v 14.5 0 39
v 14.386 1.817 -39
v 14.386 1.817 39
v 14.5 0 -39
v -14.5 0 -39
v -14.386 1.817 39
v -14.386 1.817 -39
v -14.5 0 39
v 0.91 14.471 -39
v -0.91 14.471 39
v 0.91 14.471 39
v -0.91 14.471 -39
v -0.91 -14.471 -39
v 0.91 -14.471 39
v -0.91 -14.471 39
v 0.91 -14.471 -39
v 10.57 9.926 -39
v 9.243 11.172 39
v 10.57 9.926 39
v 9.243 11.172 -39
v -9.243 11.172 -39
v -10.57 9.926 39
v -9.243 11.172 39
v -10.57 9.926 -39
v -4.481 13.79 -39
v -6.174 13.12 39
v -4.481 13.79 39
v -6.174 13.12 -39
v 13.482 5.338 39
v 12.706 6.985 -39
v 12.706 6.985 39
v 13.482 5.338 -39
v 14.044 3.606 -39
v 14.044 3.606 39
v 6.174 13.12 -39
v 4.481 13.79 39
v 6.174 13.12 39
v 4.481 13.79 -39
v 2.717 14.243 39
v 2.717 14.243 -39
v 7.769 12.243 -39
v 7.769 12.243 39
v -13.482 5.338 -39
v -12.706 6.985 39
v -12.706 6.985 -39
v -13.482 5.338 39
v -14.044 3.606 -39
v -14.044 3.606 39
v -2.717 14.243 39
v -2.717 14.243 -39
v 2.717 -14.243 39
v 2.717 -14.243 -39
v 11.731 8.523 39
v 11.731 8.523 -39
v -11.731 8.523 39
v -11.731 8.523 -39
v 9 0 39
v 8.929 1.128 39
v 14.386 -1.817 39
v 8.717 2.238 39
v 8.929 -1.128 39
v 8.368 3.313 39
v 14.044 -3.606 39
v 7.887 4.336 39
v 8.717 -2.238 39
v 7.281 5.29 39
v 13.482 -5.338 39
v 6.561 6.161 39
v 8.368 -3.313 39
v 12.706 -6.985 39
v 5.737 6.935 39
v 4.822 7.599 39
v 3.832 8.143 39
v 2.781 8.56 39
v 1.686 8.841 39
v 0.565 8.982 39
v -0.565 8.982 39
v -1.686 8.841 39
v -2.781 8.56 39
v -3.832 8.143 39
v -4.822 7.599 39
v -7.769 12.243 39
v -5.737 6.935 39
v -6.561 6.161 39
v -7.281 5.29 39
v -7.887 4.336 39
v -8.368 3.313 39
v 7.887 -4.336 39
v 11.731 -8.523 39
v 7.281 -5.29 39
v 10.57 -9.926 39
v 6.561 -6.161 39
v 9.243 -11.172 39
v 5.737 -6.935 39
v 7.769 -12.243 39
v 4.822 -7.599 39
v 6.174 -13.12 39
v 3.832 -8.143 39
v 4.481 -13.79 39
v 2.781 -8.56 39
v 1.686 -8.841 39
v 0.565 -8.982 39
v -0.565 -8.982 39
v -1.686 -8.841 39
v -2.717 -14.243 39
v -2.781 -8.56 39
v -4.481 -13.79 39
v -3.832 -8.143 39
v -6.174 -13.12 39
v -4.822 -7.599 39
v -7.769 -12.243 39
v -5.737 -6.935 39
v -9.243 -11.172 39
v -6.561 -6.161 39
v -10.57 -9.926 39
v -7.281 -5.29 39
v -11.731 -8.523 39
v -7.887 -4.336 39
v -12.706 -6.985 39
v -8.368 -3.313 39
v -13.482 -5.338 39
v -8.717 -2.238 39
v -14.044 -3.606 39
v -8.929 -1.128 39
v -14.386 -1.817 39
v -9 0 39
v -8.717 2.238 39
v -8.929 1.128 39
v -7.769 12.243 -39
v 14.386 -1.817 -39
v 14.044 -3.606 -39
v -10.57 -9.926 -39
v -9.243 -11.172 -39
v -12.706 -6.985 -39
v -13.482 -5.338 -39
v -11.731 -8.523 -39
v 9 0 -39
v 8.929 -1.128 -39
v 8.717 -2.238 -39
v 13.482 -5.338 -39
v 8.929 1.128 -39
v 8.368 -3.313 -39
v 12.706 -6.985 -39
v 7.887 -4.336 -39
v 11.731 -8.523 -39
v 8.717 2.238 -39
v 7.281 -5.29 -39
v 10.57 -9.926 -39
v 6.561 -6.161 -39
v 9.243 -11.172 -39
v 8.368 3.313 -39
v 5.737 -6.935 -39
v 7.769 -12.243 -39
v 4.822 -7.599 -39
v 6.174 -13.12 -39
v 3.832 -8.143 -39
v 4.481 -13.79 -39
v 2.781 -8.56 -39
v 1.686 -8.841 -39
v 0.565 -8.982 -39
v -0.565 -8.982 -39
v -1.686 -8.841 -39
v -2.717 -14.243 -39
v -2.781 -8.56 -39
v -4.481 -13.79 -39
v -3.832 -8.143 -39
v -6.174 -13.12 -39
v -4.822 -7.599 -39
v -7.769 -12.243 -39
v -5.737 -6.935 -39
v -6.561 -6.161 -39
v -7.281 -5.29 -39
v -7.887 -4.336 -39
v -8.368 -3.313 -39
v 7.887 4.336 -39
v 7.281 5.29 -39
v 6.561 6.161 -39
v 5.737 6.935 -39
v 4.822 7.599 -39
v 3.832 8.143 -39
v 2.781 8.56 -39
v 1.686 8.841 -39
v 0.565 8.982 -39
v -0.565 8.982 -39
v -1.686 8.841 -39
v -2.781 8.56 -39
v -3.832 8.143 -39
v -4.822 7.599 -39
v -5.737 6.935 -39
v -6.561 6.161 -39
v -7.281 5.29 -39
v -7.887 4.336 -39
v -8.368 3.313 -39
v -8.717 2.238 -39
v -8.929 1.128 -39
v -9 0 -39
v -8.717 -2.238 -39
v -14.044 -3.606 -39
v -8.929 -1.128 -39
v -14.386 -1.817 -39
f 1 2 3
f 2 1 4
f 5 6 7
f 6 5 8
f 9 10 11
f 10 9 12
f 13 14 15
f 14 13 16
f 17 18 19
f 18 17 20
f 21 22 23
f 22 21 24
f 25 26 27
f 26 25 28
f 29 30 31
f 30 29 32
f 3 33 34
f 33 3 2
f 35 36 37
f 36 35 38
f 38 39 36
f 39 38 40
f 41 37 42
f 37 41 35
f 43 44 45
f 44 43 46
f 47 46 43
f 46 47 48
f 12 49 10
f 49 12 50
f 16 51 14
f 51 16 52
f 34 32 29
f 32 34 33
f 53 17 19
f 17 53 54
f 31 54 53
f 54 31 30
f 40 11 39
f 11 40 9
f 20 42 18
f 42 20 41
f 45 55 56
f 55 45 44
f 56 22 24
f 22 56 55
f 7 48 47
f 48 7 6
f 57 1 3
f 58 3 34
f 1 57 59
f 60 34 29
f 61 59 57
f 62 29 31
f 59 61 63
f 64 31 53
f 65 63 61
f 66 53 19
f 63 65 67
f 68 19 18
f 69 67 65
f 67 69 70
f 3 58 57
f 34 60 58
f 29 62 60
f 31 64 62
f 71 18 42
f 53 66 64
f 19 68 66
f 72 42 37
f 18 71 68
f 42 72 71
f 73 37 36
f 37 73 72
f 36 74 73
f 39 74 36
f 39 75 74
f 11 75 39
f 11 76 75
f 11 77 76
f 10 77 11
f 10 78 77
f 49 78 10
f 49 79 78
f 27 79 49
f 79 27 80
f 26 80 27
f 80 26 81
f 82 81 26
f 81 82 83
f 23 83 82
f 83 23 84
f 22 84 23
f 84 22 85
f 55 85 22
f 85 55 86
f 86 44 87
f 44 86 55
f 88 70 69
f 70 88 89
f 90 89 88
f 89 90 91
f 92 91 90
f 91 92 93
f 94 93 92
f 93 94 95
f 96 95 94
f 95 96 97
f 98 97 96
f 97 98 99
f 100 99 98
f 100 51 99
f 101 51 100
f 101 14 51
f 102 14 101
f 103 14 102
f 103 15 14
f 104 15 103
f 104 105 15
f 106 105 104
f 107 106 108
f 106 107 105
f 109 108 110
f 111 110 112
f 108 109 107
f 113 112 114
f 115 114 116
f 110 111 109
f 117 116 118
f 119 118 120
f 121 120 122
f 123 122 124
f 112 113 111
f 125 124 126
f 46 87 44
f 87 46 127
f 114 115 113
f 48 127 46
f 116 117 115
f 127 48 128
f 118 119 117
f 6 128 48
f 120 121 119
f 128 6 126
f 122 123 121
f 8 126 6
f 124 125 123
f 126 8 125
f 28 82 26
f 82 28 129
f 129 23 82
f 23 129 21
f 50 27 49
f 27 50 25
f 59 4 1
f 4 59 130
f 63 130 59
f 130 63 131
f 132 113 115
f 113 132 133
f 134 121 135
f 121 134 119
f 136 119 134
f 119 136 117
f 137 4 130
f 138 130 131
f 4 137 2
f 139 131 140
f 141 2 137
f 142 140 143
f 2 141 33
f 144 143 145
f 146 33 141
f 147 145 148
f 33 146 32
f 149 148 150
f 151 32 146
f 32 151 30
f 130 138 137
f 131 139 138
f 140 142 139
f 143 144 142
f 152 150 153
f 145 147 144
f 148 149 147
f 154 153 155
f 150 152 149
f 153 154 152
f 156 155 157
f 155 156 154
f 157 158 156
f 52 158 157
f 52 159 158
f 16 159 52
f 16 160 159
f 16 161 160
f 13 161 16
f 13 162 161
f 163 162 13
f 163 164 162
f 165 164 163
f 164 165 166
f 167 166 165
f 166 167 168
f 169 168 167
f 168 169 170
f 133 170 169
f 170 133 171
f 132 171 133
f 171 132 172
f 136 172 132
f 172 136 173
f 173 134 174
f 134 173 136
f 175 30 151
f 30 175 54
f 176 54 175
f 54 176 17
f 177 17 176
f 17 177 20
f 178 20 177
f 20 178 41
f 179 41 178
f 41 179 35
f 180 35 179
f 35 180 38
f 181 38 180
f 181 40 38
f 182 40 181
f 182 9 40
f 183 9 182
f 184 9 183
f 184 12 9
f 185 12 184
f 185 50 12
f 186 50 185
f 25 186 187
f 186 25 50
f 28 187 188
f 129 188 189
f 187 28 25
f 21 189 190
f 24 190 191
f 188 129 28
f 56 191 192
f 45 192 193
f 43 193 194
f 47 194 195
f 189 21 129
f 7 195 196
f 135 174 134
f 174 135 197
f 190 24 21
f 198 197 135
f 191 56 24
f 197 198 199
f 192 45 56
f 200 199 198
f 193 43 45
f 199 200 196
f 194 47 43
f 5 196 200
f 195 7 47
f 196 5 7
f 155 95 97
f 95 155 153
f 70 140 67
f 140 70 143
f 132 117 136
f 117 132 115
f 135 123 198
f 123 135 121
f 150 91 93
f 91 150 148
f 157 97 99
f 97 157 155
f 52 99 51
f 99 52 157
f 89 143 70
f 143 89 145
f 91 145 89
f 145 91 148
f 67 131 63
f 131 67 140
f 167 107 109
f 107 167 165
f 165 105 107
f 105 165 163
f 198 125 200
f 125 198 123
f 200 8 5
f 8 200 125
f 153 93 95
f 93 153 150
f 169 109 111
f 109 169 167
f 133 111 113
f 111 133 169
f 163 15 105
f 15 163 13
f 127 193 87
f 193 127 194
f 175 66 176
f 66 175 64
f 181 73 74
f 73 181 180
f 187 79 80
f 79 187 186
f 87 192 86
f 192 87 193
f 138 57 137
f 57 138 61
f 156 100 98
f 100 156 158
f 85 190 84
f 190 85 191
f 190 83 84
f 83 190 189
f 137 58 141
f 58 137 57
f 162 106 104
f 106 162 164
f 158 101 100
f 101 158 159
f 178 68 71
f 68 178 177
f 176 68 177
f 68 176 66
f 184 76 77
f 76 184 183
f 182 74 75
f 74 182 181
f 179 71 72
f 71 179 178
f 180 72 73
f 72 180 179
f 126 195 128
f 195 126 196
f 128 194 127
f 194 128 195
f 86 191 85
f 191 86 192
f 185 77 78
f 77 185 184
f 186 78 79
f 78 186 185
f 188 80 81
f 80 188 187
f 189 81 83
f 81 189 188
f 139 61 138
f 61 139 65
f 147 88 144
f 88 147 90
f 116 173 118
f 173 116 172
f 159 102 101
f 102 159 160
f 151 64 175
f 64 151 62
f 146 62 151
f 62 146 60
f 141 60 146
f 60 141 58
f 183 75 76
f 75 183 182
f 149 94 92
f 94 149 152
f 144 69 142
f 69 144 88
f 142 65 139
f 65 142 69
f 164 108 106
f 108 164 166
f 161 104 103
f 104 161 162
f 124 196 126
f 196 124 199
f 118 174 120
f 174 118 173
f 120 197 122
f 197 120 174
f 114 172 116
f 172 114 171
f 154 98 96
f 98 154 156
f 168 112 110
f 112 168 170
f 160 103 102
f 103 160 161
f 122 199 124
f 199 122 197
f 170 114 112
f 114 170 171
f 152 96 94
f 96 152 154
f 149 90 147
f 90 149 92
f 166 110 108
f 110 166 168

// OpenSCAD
$fn = 50;


difference() {
	union() {
		translate(v = [0, 0, -39.0000000000]) {
			cylinder(h = 78, r = 14.5000000000);
		}
	}
	union() {
		translate(v = [0, 0, -100.0000000000]) {
			cylinder(h = 200, r = 9);
		}
	}
}
